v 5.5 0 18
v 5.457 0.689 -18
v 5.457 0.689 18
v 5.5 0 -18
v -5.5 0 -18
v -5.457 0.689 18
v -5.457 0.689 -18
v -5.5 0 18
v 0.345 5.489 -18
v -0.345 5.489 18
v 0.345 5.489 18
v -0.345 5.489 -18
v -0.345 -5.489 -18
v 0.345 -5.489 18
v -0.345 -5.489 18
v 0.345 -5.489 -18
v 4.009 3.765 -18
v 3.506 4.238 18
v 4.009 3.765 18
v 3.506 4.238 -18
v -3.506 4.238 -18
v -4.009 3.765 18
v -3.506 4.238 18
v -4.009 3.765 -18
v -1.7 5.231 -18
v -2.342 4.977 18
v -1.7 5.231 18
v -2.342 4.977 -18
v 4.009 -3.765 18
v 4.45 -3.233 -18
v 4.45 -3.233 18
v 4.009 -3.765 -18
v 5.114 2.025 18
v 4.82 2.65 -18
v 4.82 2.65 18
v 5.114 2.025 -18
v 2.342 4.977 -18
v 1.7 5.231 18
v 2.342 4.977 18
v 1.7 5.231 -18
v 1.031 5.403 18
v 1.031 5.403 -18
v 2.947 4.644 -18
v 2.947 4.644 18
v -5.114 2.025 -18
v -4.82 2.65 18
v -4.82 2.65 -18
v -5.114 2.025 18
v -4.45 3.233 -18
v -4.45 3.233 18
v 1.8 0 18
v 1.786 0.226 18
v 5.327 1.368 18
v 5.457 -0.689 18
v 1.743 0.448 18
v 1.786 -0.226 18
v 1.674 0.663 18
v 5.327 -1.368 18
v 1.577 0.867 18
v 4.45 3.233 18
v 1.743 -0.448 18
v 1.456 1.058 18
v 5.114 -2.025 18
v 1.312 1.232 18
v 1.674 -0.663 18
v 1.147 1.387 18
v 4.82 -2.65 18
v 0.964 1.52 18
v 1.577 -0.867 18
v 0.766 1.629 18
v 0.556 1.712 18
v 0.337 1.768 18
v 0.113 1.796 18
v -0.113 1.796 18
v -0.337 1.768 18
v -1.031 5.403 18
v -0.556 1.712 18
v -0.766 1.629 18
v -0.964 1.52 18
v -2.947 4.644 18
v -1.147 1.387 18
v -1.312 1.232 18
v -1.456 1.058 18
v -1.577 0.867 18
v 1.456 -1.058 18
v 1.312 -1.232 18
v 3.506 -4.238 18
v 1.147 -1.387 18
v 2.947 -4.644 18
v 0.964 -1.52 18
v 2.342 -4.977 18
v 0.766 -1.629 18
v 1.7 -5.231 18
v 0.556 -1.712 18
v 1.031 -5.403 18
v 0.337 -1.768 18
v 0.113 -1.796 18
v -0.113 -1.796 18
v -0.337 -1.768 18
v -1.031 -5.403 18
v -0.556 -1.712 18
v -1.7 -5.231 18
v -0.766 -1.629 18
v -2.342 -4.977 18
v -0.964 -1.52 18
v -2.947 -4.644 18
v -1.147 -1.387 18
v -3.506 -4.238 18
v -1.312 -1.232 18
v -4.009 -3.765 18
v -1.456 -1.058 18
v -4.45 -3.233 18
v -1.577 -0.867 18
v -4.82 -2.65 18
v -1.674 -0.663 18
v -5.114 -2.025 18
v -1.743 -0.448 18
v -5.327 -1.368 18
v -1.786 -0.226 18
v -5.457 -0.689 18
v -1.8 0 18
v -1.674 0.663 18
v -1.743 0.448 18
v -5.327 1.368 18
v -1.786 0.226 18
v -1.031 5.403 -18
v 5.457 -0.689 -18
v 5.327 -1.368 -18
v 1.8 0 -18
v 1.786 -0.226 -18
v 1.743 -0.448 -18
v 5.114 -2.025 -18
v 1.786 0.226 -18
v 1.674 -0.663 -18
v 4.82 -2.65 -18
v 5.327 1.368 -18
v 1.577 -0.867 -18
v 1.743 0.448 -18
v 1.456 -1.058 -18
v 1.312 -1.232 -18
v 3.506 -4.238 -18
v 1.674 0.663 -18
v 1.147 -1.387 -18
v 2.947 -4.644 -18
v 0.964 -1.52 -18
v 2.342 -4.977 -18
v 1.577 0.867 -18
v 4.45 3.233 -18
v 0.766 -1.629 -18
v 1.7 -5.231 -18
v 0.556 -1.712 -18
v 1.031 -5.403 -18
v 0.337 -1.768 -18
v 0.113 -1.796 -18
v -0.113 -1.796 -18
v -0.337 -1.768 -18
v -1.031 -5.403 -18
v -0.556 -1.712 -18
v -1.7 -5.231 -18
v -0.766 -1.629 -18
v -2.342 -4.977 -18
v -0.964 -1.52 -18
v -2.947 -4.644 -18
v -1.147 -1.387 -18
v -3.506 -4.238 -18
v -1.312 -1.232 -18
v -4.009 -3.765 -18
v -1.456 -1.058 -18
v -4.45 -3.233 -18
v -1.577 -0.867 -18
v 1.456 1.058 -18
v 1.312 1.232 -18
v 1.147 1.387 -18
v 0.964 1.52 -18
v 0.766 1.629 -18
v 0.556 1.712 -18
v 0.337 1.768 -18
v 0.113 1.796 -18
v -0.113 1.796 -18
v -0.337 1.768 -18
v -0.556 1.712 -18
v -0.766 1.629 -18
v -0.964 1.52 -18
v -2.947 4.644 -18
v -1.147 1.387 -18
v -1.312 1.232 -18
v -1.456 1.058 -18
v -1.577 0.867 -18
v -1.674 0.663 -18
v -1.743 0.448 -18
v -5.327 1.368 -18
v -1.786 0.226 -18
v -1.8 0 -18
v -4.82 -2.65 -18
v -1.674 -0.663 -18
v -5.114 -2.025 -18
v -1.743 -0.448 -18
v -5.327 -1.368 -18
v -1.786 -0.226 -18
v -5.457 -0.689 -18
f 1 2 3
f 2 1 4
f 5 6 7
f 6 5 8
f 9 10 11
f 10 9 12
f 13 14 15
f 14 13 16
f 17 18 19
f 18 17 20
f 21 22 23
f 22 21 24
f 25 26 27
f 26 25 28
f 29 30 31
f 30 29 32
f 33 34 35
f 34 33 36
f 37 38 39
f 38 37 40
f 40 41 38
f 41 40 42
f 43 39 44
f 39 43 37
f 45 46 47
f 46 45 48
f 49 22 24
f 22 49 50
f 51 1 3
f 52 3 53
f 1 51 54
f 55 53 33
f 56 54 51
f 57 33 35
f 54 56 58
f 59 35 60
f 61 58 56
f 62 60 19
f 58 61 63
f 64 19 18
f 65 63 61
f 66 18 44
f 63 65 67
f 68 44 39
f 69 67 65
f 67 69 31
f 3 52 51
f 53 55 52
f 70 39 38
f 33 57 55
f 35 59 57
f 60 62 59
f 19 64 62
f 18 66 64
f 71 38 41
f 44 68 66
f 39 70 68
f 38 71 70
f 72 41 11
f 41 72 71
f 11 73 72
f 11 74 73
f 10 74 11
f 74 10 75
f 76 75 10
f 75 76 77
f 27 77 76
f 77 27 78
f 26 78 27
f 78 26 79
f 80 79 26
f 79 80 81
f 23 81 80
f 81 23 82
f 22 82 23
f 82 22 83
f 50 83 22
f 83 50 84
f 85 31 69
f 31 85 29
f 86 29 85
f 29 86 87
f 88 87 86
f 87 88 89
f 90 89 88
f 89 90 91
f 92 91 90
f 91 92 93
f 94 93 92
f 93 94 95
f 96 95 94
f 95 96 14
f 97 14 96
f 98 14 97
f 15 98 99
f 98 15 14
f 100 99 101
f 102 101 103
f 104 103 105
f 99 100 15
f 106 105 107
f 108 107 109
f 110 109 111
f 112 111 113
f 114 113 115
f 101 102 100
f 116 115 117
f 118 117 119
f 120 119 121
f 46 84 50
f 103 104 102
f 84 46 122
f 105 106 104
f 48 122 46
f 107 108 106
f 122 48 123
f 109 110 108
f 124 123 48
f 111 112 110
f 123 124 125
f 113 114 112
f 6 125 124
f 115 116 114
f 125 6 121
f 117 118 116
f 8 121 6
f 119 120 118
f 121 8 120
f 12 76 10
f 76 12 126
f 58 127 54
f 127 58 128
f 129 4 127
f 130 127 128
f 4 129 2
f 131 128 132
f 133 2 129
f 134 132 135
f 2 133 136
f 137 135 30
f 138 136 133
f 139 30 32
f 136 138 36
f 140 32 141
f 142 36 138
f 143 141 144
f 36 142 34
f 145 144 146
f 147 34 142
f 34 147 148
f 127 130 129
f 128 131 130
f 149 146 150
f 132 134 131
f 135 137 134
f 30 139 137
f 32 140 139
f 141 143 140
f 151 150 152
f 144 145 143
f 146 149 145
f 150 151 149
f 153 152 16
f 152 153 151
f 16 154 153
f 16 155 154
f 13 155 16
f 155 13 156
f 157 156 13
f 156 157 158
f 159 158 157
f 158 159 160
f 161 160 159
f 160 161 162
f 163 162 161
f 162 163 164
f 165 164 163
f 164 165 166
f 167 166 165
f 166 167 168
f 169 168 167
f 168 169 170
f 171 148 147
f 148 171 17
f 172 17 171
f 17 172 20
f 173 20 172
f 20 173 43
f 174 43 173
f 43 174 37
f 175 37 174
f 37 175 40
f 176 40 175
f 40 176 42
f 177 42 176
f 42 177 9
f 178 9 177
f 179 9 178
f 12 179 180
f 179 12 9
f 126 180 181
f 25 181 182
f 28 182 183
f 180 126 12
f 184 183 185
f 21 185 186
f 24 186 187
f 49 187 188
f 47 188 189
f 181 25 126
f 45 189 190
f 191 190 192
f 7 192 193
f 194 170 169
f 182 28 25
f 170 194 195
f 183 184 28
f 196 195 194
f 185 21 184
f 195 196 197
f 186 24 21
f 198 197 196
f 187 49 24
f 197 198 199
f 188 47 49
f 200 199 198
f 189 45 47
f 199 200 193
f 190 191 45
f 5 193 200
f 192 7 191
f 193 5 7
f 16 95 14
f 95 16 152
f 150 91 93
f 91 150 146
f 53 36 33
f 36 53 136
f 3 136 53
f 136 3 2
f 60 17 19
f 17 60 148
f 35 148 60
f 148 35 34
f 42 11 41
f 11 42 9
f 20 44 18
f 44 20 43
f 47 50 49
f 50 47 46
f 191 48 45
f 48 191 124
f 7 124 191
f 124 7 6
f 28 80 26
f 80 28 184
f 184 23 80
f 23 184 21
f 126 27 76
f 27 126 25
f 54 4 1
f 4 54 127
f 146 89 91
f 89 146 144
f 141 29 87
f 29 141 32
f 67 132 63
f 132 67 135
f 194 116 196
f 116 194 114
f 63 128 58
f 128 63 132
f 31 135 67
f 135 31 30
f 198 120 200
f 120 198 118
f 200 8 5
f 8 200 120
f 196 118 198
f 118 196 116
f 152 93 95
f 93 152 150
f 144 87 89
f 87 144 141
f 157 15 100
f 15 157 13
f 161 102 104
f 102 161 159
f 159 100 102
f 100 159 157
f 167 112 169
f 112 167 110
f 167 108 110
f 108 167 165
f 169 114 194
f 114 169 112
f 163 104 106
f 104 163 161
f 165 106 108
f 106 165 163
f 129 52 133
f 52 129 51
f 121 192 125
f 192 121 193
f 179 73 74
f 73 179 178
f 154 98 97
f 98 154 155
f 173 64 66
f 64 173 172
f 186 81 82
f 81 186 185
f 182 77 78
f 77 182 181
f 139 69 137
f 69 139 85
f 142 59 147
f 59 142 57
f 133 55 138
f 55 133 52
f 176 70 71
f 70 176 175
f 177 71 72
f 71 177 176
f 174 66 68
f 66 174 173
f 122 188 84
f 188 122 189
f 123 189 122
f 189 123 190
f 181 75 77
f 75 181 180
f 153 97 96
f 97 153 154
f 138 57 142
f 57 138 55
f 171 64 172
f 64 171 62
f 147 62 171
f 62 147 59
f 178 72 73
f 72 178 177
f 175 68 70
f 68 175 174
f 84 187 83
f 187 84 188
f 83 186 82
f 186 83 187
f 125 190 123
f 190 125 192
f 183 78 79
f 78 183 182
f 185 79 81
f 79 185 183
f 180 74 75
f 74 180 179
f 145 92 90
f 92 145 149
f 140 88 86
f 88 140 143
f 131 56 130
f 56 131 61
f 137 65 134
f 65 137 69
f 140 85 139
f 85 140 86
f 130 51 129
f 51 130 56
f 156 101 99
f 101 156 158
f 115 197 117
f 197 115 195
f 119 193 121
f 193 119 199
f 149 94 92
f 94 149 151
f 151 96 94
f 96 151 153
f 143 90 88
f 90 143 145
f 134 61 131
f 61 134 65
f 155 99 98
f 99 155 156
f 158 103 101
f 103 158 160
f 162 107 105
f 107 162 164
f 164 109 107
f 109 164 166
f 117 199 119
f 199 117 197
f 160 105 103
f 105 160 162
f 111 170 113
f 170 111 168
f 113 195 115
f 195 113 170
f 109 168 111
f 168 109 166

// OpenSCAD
$fn = 50;


difference() {
	union() {
		translate(v = [0, 0, -18.0000000000]) {
			cylinder(h = 36, r = 5.5000000000);
		}
	}
	union() {
		translate(v = [0, 0, -100.0000000000]) {
			cylinder(h = 200, r = 1.8000000000);
		}
	}
}
